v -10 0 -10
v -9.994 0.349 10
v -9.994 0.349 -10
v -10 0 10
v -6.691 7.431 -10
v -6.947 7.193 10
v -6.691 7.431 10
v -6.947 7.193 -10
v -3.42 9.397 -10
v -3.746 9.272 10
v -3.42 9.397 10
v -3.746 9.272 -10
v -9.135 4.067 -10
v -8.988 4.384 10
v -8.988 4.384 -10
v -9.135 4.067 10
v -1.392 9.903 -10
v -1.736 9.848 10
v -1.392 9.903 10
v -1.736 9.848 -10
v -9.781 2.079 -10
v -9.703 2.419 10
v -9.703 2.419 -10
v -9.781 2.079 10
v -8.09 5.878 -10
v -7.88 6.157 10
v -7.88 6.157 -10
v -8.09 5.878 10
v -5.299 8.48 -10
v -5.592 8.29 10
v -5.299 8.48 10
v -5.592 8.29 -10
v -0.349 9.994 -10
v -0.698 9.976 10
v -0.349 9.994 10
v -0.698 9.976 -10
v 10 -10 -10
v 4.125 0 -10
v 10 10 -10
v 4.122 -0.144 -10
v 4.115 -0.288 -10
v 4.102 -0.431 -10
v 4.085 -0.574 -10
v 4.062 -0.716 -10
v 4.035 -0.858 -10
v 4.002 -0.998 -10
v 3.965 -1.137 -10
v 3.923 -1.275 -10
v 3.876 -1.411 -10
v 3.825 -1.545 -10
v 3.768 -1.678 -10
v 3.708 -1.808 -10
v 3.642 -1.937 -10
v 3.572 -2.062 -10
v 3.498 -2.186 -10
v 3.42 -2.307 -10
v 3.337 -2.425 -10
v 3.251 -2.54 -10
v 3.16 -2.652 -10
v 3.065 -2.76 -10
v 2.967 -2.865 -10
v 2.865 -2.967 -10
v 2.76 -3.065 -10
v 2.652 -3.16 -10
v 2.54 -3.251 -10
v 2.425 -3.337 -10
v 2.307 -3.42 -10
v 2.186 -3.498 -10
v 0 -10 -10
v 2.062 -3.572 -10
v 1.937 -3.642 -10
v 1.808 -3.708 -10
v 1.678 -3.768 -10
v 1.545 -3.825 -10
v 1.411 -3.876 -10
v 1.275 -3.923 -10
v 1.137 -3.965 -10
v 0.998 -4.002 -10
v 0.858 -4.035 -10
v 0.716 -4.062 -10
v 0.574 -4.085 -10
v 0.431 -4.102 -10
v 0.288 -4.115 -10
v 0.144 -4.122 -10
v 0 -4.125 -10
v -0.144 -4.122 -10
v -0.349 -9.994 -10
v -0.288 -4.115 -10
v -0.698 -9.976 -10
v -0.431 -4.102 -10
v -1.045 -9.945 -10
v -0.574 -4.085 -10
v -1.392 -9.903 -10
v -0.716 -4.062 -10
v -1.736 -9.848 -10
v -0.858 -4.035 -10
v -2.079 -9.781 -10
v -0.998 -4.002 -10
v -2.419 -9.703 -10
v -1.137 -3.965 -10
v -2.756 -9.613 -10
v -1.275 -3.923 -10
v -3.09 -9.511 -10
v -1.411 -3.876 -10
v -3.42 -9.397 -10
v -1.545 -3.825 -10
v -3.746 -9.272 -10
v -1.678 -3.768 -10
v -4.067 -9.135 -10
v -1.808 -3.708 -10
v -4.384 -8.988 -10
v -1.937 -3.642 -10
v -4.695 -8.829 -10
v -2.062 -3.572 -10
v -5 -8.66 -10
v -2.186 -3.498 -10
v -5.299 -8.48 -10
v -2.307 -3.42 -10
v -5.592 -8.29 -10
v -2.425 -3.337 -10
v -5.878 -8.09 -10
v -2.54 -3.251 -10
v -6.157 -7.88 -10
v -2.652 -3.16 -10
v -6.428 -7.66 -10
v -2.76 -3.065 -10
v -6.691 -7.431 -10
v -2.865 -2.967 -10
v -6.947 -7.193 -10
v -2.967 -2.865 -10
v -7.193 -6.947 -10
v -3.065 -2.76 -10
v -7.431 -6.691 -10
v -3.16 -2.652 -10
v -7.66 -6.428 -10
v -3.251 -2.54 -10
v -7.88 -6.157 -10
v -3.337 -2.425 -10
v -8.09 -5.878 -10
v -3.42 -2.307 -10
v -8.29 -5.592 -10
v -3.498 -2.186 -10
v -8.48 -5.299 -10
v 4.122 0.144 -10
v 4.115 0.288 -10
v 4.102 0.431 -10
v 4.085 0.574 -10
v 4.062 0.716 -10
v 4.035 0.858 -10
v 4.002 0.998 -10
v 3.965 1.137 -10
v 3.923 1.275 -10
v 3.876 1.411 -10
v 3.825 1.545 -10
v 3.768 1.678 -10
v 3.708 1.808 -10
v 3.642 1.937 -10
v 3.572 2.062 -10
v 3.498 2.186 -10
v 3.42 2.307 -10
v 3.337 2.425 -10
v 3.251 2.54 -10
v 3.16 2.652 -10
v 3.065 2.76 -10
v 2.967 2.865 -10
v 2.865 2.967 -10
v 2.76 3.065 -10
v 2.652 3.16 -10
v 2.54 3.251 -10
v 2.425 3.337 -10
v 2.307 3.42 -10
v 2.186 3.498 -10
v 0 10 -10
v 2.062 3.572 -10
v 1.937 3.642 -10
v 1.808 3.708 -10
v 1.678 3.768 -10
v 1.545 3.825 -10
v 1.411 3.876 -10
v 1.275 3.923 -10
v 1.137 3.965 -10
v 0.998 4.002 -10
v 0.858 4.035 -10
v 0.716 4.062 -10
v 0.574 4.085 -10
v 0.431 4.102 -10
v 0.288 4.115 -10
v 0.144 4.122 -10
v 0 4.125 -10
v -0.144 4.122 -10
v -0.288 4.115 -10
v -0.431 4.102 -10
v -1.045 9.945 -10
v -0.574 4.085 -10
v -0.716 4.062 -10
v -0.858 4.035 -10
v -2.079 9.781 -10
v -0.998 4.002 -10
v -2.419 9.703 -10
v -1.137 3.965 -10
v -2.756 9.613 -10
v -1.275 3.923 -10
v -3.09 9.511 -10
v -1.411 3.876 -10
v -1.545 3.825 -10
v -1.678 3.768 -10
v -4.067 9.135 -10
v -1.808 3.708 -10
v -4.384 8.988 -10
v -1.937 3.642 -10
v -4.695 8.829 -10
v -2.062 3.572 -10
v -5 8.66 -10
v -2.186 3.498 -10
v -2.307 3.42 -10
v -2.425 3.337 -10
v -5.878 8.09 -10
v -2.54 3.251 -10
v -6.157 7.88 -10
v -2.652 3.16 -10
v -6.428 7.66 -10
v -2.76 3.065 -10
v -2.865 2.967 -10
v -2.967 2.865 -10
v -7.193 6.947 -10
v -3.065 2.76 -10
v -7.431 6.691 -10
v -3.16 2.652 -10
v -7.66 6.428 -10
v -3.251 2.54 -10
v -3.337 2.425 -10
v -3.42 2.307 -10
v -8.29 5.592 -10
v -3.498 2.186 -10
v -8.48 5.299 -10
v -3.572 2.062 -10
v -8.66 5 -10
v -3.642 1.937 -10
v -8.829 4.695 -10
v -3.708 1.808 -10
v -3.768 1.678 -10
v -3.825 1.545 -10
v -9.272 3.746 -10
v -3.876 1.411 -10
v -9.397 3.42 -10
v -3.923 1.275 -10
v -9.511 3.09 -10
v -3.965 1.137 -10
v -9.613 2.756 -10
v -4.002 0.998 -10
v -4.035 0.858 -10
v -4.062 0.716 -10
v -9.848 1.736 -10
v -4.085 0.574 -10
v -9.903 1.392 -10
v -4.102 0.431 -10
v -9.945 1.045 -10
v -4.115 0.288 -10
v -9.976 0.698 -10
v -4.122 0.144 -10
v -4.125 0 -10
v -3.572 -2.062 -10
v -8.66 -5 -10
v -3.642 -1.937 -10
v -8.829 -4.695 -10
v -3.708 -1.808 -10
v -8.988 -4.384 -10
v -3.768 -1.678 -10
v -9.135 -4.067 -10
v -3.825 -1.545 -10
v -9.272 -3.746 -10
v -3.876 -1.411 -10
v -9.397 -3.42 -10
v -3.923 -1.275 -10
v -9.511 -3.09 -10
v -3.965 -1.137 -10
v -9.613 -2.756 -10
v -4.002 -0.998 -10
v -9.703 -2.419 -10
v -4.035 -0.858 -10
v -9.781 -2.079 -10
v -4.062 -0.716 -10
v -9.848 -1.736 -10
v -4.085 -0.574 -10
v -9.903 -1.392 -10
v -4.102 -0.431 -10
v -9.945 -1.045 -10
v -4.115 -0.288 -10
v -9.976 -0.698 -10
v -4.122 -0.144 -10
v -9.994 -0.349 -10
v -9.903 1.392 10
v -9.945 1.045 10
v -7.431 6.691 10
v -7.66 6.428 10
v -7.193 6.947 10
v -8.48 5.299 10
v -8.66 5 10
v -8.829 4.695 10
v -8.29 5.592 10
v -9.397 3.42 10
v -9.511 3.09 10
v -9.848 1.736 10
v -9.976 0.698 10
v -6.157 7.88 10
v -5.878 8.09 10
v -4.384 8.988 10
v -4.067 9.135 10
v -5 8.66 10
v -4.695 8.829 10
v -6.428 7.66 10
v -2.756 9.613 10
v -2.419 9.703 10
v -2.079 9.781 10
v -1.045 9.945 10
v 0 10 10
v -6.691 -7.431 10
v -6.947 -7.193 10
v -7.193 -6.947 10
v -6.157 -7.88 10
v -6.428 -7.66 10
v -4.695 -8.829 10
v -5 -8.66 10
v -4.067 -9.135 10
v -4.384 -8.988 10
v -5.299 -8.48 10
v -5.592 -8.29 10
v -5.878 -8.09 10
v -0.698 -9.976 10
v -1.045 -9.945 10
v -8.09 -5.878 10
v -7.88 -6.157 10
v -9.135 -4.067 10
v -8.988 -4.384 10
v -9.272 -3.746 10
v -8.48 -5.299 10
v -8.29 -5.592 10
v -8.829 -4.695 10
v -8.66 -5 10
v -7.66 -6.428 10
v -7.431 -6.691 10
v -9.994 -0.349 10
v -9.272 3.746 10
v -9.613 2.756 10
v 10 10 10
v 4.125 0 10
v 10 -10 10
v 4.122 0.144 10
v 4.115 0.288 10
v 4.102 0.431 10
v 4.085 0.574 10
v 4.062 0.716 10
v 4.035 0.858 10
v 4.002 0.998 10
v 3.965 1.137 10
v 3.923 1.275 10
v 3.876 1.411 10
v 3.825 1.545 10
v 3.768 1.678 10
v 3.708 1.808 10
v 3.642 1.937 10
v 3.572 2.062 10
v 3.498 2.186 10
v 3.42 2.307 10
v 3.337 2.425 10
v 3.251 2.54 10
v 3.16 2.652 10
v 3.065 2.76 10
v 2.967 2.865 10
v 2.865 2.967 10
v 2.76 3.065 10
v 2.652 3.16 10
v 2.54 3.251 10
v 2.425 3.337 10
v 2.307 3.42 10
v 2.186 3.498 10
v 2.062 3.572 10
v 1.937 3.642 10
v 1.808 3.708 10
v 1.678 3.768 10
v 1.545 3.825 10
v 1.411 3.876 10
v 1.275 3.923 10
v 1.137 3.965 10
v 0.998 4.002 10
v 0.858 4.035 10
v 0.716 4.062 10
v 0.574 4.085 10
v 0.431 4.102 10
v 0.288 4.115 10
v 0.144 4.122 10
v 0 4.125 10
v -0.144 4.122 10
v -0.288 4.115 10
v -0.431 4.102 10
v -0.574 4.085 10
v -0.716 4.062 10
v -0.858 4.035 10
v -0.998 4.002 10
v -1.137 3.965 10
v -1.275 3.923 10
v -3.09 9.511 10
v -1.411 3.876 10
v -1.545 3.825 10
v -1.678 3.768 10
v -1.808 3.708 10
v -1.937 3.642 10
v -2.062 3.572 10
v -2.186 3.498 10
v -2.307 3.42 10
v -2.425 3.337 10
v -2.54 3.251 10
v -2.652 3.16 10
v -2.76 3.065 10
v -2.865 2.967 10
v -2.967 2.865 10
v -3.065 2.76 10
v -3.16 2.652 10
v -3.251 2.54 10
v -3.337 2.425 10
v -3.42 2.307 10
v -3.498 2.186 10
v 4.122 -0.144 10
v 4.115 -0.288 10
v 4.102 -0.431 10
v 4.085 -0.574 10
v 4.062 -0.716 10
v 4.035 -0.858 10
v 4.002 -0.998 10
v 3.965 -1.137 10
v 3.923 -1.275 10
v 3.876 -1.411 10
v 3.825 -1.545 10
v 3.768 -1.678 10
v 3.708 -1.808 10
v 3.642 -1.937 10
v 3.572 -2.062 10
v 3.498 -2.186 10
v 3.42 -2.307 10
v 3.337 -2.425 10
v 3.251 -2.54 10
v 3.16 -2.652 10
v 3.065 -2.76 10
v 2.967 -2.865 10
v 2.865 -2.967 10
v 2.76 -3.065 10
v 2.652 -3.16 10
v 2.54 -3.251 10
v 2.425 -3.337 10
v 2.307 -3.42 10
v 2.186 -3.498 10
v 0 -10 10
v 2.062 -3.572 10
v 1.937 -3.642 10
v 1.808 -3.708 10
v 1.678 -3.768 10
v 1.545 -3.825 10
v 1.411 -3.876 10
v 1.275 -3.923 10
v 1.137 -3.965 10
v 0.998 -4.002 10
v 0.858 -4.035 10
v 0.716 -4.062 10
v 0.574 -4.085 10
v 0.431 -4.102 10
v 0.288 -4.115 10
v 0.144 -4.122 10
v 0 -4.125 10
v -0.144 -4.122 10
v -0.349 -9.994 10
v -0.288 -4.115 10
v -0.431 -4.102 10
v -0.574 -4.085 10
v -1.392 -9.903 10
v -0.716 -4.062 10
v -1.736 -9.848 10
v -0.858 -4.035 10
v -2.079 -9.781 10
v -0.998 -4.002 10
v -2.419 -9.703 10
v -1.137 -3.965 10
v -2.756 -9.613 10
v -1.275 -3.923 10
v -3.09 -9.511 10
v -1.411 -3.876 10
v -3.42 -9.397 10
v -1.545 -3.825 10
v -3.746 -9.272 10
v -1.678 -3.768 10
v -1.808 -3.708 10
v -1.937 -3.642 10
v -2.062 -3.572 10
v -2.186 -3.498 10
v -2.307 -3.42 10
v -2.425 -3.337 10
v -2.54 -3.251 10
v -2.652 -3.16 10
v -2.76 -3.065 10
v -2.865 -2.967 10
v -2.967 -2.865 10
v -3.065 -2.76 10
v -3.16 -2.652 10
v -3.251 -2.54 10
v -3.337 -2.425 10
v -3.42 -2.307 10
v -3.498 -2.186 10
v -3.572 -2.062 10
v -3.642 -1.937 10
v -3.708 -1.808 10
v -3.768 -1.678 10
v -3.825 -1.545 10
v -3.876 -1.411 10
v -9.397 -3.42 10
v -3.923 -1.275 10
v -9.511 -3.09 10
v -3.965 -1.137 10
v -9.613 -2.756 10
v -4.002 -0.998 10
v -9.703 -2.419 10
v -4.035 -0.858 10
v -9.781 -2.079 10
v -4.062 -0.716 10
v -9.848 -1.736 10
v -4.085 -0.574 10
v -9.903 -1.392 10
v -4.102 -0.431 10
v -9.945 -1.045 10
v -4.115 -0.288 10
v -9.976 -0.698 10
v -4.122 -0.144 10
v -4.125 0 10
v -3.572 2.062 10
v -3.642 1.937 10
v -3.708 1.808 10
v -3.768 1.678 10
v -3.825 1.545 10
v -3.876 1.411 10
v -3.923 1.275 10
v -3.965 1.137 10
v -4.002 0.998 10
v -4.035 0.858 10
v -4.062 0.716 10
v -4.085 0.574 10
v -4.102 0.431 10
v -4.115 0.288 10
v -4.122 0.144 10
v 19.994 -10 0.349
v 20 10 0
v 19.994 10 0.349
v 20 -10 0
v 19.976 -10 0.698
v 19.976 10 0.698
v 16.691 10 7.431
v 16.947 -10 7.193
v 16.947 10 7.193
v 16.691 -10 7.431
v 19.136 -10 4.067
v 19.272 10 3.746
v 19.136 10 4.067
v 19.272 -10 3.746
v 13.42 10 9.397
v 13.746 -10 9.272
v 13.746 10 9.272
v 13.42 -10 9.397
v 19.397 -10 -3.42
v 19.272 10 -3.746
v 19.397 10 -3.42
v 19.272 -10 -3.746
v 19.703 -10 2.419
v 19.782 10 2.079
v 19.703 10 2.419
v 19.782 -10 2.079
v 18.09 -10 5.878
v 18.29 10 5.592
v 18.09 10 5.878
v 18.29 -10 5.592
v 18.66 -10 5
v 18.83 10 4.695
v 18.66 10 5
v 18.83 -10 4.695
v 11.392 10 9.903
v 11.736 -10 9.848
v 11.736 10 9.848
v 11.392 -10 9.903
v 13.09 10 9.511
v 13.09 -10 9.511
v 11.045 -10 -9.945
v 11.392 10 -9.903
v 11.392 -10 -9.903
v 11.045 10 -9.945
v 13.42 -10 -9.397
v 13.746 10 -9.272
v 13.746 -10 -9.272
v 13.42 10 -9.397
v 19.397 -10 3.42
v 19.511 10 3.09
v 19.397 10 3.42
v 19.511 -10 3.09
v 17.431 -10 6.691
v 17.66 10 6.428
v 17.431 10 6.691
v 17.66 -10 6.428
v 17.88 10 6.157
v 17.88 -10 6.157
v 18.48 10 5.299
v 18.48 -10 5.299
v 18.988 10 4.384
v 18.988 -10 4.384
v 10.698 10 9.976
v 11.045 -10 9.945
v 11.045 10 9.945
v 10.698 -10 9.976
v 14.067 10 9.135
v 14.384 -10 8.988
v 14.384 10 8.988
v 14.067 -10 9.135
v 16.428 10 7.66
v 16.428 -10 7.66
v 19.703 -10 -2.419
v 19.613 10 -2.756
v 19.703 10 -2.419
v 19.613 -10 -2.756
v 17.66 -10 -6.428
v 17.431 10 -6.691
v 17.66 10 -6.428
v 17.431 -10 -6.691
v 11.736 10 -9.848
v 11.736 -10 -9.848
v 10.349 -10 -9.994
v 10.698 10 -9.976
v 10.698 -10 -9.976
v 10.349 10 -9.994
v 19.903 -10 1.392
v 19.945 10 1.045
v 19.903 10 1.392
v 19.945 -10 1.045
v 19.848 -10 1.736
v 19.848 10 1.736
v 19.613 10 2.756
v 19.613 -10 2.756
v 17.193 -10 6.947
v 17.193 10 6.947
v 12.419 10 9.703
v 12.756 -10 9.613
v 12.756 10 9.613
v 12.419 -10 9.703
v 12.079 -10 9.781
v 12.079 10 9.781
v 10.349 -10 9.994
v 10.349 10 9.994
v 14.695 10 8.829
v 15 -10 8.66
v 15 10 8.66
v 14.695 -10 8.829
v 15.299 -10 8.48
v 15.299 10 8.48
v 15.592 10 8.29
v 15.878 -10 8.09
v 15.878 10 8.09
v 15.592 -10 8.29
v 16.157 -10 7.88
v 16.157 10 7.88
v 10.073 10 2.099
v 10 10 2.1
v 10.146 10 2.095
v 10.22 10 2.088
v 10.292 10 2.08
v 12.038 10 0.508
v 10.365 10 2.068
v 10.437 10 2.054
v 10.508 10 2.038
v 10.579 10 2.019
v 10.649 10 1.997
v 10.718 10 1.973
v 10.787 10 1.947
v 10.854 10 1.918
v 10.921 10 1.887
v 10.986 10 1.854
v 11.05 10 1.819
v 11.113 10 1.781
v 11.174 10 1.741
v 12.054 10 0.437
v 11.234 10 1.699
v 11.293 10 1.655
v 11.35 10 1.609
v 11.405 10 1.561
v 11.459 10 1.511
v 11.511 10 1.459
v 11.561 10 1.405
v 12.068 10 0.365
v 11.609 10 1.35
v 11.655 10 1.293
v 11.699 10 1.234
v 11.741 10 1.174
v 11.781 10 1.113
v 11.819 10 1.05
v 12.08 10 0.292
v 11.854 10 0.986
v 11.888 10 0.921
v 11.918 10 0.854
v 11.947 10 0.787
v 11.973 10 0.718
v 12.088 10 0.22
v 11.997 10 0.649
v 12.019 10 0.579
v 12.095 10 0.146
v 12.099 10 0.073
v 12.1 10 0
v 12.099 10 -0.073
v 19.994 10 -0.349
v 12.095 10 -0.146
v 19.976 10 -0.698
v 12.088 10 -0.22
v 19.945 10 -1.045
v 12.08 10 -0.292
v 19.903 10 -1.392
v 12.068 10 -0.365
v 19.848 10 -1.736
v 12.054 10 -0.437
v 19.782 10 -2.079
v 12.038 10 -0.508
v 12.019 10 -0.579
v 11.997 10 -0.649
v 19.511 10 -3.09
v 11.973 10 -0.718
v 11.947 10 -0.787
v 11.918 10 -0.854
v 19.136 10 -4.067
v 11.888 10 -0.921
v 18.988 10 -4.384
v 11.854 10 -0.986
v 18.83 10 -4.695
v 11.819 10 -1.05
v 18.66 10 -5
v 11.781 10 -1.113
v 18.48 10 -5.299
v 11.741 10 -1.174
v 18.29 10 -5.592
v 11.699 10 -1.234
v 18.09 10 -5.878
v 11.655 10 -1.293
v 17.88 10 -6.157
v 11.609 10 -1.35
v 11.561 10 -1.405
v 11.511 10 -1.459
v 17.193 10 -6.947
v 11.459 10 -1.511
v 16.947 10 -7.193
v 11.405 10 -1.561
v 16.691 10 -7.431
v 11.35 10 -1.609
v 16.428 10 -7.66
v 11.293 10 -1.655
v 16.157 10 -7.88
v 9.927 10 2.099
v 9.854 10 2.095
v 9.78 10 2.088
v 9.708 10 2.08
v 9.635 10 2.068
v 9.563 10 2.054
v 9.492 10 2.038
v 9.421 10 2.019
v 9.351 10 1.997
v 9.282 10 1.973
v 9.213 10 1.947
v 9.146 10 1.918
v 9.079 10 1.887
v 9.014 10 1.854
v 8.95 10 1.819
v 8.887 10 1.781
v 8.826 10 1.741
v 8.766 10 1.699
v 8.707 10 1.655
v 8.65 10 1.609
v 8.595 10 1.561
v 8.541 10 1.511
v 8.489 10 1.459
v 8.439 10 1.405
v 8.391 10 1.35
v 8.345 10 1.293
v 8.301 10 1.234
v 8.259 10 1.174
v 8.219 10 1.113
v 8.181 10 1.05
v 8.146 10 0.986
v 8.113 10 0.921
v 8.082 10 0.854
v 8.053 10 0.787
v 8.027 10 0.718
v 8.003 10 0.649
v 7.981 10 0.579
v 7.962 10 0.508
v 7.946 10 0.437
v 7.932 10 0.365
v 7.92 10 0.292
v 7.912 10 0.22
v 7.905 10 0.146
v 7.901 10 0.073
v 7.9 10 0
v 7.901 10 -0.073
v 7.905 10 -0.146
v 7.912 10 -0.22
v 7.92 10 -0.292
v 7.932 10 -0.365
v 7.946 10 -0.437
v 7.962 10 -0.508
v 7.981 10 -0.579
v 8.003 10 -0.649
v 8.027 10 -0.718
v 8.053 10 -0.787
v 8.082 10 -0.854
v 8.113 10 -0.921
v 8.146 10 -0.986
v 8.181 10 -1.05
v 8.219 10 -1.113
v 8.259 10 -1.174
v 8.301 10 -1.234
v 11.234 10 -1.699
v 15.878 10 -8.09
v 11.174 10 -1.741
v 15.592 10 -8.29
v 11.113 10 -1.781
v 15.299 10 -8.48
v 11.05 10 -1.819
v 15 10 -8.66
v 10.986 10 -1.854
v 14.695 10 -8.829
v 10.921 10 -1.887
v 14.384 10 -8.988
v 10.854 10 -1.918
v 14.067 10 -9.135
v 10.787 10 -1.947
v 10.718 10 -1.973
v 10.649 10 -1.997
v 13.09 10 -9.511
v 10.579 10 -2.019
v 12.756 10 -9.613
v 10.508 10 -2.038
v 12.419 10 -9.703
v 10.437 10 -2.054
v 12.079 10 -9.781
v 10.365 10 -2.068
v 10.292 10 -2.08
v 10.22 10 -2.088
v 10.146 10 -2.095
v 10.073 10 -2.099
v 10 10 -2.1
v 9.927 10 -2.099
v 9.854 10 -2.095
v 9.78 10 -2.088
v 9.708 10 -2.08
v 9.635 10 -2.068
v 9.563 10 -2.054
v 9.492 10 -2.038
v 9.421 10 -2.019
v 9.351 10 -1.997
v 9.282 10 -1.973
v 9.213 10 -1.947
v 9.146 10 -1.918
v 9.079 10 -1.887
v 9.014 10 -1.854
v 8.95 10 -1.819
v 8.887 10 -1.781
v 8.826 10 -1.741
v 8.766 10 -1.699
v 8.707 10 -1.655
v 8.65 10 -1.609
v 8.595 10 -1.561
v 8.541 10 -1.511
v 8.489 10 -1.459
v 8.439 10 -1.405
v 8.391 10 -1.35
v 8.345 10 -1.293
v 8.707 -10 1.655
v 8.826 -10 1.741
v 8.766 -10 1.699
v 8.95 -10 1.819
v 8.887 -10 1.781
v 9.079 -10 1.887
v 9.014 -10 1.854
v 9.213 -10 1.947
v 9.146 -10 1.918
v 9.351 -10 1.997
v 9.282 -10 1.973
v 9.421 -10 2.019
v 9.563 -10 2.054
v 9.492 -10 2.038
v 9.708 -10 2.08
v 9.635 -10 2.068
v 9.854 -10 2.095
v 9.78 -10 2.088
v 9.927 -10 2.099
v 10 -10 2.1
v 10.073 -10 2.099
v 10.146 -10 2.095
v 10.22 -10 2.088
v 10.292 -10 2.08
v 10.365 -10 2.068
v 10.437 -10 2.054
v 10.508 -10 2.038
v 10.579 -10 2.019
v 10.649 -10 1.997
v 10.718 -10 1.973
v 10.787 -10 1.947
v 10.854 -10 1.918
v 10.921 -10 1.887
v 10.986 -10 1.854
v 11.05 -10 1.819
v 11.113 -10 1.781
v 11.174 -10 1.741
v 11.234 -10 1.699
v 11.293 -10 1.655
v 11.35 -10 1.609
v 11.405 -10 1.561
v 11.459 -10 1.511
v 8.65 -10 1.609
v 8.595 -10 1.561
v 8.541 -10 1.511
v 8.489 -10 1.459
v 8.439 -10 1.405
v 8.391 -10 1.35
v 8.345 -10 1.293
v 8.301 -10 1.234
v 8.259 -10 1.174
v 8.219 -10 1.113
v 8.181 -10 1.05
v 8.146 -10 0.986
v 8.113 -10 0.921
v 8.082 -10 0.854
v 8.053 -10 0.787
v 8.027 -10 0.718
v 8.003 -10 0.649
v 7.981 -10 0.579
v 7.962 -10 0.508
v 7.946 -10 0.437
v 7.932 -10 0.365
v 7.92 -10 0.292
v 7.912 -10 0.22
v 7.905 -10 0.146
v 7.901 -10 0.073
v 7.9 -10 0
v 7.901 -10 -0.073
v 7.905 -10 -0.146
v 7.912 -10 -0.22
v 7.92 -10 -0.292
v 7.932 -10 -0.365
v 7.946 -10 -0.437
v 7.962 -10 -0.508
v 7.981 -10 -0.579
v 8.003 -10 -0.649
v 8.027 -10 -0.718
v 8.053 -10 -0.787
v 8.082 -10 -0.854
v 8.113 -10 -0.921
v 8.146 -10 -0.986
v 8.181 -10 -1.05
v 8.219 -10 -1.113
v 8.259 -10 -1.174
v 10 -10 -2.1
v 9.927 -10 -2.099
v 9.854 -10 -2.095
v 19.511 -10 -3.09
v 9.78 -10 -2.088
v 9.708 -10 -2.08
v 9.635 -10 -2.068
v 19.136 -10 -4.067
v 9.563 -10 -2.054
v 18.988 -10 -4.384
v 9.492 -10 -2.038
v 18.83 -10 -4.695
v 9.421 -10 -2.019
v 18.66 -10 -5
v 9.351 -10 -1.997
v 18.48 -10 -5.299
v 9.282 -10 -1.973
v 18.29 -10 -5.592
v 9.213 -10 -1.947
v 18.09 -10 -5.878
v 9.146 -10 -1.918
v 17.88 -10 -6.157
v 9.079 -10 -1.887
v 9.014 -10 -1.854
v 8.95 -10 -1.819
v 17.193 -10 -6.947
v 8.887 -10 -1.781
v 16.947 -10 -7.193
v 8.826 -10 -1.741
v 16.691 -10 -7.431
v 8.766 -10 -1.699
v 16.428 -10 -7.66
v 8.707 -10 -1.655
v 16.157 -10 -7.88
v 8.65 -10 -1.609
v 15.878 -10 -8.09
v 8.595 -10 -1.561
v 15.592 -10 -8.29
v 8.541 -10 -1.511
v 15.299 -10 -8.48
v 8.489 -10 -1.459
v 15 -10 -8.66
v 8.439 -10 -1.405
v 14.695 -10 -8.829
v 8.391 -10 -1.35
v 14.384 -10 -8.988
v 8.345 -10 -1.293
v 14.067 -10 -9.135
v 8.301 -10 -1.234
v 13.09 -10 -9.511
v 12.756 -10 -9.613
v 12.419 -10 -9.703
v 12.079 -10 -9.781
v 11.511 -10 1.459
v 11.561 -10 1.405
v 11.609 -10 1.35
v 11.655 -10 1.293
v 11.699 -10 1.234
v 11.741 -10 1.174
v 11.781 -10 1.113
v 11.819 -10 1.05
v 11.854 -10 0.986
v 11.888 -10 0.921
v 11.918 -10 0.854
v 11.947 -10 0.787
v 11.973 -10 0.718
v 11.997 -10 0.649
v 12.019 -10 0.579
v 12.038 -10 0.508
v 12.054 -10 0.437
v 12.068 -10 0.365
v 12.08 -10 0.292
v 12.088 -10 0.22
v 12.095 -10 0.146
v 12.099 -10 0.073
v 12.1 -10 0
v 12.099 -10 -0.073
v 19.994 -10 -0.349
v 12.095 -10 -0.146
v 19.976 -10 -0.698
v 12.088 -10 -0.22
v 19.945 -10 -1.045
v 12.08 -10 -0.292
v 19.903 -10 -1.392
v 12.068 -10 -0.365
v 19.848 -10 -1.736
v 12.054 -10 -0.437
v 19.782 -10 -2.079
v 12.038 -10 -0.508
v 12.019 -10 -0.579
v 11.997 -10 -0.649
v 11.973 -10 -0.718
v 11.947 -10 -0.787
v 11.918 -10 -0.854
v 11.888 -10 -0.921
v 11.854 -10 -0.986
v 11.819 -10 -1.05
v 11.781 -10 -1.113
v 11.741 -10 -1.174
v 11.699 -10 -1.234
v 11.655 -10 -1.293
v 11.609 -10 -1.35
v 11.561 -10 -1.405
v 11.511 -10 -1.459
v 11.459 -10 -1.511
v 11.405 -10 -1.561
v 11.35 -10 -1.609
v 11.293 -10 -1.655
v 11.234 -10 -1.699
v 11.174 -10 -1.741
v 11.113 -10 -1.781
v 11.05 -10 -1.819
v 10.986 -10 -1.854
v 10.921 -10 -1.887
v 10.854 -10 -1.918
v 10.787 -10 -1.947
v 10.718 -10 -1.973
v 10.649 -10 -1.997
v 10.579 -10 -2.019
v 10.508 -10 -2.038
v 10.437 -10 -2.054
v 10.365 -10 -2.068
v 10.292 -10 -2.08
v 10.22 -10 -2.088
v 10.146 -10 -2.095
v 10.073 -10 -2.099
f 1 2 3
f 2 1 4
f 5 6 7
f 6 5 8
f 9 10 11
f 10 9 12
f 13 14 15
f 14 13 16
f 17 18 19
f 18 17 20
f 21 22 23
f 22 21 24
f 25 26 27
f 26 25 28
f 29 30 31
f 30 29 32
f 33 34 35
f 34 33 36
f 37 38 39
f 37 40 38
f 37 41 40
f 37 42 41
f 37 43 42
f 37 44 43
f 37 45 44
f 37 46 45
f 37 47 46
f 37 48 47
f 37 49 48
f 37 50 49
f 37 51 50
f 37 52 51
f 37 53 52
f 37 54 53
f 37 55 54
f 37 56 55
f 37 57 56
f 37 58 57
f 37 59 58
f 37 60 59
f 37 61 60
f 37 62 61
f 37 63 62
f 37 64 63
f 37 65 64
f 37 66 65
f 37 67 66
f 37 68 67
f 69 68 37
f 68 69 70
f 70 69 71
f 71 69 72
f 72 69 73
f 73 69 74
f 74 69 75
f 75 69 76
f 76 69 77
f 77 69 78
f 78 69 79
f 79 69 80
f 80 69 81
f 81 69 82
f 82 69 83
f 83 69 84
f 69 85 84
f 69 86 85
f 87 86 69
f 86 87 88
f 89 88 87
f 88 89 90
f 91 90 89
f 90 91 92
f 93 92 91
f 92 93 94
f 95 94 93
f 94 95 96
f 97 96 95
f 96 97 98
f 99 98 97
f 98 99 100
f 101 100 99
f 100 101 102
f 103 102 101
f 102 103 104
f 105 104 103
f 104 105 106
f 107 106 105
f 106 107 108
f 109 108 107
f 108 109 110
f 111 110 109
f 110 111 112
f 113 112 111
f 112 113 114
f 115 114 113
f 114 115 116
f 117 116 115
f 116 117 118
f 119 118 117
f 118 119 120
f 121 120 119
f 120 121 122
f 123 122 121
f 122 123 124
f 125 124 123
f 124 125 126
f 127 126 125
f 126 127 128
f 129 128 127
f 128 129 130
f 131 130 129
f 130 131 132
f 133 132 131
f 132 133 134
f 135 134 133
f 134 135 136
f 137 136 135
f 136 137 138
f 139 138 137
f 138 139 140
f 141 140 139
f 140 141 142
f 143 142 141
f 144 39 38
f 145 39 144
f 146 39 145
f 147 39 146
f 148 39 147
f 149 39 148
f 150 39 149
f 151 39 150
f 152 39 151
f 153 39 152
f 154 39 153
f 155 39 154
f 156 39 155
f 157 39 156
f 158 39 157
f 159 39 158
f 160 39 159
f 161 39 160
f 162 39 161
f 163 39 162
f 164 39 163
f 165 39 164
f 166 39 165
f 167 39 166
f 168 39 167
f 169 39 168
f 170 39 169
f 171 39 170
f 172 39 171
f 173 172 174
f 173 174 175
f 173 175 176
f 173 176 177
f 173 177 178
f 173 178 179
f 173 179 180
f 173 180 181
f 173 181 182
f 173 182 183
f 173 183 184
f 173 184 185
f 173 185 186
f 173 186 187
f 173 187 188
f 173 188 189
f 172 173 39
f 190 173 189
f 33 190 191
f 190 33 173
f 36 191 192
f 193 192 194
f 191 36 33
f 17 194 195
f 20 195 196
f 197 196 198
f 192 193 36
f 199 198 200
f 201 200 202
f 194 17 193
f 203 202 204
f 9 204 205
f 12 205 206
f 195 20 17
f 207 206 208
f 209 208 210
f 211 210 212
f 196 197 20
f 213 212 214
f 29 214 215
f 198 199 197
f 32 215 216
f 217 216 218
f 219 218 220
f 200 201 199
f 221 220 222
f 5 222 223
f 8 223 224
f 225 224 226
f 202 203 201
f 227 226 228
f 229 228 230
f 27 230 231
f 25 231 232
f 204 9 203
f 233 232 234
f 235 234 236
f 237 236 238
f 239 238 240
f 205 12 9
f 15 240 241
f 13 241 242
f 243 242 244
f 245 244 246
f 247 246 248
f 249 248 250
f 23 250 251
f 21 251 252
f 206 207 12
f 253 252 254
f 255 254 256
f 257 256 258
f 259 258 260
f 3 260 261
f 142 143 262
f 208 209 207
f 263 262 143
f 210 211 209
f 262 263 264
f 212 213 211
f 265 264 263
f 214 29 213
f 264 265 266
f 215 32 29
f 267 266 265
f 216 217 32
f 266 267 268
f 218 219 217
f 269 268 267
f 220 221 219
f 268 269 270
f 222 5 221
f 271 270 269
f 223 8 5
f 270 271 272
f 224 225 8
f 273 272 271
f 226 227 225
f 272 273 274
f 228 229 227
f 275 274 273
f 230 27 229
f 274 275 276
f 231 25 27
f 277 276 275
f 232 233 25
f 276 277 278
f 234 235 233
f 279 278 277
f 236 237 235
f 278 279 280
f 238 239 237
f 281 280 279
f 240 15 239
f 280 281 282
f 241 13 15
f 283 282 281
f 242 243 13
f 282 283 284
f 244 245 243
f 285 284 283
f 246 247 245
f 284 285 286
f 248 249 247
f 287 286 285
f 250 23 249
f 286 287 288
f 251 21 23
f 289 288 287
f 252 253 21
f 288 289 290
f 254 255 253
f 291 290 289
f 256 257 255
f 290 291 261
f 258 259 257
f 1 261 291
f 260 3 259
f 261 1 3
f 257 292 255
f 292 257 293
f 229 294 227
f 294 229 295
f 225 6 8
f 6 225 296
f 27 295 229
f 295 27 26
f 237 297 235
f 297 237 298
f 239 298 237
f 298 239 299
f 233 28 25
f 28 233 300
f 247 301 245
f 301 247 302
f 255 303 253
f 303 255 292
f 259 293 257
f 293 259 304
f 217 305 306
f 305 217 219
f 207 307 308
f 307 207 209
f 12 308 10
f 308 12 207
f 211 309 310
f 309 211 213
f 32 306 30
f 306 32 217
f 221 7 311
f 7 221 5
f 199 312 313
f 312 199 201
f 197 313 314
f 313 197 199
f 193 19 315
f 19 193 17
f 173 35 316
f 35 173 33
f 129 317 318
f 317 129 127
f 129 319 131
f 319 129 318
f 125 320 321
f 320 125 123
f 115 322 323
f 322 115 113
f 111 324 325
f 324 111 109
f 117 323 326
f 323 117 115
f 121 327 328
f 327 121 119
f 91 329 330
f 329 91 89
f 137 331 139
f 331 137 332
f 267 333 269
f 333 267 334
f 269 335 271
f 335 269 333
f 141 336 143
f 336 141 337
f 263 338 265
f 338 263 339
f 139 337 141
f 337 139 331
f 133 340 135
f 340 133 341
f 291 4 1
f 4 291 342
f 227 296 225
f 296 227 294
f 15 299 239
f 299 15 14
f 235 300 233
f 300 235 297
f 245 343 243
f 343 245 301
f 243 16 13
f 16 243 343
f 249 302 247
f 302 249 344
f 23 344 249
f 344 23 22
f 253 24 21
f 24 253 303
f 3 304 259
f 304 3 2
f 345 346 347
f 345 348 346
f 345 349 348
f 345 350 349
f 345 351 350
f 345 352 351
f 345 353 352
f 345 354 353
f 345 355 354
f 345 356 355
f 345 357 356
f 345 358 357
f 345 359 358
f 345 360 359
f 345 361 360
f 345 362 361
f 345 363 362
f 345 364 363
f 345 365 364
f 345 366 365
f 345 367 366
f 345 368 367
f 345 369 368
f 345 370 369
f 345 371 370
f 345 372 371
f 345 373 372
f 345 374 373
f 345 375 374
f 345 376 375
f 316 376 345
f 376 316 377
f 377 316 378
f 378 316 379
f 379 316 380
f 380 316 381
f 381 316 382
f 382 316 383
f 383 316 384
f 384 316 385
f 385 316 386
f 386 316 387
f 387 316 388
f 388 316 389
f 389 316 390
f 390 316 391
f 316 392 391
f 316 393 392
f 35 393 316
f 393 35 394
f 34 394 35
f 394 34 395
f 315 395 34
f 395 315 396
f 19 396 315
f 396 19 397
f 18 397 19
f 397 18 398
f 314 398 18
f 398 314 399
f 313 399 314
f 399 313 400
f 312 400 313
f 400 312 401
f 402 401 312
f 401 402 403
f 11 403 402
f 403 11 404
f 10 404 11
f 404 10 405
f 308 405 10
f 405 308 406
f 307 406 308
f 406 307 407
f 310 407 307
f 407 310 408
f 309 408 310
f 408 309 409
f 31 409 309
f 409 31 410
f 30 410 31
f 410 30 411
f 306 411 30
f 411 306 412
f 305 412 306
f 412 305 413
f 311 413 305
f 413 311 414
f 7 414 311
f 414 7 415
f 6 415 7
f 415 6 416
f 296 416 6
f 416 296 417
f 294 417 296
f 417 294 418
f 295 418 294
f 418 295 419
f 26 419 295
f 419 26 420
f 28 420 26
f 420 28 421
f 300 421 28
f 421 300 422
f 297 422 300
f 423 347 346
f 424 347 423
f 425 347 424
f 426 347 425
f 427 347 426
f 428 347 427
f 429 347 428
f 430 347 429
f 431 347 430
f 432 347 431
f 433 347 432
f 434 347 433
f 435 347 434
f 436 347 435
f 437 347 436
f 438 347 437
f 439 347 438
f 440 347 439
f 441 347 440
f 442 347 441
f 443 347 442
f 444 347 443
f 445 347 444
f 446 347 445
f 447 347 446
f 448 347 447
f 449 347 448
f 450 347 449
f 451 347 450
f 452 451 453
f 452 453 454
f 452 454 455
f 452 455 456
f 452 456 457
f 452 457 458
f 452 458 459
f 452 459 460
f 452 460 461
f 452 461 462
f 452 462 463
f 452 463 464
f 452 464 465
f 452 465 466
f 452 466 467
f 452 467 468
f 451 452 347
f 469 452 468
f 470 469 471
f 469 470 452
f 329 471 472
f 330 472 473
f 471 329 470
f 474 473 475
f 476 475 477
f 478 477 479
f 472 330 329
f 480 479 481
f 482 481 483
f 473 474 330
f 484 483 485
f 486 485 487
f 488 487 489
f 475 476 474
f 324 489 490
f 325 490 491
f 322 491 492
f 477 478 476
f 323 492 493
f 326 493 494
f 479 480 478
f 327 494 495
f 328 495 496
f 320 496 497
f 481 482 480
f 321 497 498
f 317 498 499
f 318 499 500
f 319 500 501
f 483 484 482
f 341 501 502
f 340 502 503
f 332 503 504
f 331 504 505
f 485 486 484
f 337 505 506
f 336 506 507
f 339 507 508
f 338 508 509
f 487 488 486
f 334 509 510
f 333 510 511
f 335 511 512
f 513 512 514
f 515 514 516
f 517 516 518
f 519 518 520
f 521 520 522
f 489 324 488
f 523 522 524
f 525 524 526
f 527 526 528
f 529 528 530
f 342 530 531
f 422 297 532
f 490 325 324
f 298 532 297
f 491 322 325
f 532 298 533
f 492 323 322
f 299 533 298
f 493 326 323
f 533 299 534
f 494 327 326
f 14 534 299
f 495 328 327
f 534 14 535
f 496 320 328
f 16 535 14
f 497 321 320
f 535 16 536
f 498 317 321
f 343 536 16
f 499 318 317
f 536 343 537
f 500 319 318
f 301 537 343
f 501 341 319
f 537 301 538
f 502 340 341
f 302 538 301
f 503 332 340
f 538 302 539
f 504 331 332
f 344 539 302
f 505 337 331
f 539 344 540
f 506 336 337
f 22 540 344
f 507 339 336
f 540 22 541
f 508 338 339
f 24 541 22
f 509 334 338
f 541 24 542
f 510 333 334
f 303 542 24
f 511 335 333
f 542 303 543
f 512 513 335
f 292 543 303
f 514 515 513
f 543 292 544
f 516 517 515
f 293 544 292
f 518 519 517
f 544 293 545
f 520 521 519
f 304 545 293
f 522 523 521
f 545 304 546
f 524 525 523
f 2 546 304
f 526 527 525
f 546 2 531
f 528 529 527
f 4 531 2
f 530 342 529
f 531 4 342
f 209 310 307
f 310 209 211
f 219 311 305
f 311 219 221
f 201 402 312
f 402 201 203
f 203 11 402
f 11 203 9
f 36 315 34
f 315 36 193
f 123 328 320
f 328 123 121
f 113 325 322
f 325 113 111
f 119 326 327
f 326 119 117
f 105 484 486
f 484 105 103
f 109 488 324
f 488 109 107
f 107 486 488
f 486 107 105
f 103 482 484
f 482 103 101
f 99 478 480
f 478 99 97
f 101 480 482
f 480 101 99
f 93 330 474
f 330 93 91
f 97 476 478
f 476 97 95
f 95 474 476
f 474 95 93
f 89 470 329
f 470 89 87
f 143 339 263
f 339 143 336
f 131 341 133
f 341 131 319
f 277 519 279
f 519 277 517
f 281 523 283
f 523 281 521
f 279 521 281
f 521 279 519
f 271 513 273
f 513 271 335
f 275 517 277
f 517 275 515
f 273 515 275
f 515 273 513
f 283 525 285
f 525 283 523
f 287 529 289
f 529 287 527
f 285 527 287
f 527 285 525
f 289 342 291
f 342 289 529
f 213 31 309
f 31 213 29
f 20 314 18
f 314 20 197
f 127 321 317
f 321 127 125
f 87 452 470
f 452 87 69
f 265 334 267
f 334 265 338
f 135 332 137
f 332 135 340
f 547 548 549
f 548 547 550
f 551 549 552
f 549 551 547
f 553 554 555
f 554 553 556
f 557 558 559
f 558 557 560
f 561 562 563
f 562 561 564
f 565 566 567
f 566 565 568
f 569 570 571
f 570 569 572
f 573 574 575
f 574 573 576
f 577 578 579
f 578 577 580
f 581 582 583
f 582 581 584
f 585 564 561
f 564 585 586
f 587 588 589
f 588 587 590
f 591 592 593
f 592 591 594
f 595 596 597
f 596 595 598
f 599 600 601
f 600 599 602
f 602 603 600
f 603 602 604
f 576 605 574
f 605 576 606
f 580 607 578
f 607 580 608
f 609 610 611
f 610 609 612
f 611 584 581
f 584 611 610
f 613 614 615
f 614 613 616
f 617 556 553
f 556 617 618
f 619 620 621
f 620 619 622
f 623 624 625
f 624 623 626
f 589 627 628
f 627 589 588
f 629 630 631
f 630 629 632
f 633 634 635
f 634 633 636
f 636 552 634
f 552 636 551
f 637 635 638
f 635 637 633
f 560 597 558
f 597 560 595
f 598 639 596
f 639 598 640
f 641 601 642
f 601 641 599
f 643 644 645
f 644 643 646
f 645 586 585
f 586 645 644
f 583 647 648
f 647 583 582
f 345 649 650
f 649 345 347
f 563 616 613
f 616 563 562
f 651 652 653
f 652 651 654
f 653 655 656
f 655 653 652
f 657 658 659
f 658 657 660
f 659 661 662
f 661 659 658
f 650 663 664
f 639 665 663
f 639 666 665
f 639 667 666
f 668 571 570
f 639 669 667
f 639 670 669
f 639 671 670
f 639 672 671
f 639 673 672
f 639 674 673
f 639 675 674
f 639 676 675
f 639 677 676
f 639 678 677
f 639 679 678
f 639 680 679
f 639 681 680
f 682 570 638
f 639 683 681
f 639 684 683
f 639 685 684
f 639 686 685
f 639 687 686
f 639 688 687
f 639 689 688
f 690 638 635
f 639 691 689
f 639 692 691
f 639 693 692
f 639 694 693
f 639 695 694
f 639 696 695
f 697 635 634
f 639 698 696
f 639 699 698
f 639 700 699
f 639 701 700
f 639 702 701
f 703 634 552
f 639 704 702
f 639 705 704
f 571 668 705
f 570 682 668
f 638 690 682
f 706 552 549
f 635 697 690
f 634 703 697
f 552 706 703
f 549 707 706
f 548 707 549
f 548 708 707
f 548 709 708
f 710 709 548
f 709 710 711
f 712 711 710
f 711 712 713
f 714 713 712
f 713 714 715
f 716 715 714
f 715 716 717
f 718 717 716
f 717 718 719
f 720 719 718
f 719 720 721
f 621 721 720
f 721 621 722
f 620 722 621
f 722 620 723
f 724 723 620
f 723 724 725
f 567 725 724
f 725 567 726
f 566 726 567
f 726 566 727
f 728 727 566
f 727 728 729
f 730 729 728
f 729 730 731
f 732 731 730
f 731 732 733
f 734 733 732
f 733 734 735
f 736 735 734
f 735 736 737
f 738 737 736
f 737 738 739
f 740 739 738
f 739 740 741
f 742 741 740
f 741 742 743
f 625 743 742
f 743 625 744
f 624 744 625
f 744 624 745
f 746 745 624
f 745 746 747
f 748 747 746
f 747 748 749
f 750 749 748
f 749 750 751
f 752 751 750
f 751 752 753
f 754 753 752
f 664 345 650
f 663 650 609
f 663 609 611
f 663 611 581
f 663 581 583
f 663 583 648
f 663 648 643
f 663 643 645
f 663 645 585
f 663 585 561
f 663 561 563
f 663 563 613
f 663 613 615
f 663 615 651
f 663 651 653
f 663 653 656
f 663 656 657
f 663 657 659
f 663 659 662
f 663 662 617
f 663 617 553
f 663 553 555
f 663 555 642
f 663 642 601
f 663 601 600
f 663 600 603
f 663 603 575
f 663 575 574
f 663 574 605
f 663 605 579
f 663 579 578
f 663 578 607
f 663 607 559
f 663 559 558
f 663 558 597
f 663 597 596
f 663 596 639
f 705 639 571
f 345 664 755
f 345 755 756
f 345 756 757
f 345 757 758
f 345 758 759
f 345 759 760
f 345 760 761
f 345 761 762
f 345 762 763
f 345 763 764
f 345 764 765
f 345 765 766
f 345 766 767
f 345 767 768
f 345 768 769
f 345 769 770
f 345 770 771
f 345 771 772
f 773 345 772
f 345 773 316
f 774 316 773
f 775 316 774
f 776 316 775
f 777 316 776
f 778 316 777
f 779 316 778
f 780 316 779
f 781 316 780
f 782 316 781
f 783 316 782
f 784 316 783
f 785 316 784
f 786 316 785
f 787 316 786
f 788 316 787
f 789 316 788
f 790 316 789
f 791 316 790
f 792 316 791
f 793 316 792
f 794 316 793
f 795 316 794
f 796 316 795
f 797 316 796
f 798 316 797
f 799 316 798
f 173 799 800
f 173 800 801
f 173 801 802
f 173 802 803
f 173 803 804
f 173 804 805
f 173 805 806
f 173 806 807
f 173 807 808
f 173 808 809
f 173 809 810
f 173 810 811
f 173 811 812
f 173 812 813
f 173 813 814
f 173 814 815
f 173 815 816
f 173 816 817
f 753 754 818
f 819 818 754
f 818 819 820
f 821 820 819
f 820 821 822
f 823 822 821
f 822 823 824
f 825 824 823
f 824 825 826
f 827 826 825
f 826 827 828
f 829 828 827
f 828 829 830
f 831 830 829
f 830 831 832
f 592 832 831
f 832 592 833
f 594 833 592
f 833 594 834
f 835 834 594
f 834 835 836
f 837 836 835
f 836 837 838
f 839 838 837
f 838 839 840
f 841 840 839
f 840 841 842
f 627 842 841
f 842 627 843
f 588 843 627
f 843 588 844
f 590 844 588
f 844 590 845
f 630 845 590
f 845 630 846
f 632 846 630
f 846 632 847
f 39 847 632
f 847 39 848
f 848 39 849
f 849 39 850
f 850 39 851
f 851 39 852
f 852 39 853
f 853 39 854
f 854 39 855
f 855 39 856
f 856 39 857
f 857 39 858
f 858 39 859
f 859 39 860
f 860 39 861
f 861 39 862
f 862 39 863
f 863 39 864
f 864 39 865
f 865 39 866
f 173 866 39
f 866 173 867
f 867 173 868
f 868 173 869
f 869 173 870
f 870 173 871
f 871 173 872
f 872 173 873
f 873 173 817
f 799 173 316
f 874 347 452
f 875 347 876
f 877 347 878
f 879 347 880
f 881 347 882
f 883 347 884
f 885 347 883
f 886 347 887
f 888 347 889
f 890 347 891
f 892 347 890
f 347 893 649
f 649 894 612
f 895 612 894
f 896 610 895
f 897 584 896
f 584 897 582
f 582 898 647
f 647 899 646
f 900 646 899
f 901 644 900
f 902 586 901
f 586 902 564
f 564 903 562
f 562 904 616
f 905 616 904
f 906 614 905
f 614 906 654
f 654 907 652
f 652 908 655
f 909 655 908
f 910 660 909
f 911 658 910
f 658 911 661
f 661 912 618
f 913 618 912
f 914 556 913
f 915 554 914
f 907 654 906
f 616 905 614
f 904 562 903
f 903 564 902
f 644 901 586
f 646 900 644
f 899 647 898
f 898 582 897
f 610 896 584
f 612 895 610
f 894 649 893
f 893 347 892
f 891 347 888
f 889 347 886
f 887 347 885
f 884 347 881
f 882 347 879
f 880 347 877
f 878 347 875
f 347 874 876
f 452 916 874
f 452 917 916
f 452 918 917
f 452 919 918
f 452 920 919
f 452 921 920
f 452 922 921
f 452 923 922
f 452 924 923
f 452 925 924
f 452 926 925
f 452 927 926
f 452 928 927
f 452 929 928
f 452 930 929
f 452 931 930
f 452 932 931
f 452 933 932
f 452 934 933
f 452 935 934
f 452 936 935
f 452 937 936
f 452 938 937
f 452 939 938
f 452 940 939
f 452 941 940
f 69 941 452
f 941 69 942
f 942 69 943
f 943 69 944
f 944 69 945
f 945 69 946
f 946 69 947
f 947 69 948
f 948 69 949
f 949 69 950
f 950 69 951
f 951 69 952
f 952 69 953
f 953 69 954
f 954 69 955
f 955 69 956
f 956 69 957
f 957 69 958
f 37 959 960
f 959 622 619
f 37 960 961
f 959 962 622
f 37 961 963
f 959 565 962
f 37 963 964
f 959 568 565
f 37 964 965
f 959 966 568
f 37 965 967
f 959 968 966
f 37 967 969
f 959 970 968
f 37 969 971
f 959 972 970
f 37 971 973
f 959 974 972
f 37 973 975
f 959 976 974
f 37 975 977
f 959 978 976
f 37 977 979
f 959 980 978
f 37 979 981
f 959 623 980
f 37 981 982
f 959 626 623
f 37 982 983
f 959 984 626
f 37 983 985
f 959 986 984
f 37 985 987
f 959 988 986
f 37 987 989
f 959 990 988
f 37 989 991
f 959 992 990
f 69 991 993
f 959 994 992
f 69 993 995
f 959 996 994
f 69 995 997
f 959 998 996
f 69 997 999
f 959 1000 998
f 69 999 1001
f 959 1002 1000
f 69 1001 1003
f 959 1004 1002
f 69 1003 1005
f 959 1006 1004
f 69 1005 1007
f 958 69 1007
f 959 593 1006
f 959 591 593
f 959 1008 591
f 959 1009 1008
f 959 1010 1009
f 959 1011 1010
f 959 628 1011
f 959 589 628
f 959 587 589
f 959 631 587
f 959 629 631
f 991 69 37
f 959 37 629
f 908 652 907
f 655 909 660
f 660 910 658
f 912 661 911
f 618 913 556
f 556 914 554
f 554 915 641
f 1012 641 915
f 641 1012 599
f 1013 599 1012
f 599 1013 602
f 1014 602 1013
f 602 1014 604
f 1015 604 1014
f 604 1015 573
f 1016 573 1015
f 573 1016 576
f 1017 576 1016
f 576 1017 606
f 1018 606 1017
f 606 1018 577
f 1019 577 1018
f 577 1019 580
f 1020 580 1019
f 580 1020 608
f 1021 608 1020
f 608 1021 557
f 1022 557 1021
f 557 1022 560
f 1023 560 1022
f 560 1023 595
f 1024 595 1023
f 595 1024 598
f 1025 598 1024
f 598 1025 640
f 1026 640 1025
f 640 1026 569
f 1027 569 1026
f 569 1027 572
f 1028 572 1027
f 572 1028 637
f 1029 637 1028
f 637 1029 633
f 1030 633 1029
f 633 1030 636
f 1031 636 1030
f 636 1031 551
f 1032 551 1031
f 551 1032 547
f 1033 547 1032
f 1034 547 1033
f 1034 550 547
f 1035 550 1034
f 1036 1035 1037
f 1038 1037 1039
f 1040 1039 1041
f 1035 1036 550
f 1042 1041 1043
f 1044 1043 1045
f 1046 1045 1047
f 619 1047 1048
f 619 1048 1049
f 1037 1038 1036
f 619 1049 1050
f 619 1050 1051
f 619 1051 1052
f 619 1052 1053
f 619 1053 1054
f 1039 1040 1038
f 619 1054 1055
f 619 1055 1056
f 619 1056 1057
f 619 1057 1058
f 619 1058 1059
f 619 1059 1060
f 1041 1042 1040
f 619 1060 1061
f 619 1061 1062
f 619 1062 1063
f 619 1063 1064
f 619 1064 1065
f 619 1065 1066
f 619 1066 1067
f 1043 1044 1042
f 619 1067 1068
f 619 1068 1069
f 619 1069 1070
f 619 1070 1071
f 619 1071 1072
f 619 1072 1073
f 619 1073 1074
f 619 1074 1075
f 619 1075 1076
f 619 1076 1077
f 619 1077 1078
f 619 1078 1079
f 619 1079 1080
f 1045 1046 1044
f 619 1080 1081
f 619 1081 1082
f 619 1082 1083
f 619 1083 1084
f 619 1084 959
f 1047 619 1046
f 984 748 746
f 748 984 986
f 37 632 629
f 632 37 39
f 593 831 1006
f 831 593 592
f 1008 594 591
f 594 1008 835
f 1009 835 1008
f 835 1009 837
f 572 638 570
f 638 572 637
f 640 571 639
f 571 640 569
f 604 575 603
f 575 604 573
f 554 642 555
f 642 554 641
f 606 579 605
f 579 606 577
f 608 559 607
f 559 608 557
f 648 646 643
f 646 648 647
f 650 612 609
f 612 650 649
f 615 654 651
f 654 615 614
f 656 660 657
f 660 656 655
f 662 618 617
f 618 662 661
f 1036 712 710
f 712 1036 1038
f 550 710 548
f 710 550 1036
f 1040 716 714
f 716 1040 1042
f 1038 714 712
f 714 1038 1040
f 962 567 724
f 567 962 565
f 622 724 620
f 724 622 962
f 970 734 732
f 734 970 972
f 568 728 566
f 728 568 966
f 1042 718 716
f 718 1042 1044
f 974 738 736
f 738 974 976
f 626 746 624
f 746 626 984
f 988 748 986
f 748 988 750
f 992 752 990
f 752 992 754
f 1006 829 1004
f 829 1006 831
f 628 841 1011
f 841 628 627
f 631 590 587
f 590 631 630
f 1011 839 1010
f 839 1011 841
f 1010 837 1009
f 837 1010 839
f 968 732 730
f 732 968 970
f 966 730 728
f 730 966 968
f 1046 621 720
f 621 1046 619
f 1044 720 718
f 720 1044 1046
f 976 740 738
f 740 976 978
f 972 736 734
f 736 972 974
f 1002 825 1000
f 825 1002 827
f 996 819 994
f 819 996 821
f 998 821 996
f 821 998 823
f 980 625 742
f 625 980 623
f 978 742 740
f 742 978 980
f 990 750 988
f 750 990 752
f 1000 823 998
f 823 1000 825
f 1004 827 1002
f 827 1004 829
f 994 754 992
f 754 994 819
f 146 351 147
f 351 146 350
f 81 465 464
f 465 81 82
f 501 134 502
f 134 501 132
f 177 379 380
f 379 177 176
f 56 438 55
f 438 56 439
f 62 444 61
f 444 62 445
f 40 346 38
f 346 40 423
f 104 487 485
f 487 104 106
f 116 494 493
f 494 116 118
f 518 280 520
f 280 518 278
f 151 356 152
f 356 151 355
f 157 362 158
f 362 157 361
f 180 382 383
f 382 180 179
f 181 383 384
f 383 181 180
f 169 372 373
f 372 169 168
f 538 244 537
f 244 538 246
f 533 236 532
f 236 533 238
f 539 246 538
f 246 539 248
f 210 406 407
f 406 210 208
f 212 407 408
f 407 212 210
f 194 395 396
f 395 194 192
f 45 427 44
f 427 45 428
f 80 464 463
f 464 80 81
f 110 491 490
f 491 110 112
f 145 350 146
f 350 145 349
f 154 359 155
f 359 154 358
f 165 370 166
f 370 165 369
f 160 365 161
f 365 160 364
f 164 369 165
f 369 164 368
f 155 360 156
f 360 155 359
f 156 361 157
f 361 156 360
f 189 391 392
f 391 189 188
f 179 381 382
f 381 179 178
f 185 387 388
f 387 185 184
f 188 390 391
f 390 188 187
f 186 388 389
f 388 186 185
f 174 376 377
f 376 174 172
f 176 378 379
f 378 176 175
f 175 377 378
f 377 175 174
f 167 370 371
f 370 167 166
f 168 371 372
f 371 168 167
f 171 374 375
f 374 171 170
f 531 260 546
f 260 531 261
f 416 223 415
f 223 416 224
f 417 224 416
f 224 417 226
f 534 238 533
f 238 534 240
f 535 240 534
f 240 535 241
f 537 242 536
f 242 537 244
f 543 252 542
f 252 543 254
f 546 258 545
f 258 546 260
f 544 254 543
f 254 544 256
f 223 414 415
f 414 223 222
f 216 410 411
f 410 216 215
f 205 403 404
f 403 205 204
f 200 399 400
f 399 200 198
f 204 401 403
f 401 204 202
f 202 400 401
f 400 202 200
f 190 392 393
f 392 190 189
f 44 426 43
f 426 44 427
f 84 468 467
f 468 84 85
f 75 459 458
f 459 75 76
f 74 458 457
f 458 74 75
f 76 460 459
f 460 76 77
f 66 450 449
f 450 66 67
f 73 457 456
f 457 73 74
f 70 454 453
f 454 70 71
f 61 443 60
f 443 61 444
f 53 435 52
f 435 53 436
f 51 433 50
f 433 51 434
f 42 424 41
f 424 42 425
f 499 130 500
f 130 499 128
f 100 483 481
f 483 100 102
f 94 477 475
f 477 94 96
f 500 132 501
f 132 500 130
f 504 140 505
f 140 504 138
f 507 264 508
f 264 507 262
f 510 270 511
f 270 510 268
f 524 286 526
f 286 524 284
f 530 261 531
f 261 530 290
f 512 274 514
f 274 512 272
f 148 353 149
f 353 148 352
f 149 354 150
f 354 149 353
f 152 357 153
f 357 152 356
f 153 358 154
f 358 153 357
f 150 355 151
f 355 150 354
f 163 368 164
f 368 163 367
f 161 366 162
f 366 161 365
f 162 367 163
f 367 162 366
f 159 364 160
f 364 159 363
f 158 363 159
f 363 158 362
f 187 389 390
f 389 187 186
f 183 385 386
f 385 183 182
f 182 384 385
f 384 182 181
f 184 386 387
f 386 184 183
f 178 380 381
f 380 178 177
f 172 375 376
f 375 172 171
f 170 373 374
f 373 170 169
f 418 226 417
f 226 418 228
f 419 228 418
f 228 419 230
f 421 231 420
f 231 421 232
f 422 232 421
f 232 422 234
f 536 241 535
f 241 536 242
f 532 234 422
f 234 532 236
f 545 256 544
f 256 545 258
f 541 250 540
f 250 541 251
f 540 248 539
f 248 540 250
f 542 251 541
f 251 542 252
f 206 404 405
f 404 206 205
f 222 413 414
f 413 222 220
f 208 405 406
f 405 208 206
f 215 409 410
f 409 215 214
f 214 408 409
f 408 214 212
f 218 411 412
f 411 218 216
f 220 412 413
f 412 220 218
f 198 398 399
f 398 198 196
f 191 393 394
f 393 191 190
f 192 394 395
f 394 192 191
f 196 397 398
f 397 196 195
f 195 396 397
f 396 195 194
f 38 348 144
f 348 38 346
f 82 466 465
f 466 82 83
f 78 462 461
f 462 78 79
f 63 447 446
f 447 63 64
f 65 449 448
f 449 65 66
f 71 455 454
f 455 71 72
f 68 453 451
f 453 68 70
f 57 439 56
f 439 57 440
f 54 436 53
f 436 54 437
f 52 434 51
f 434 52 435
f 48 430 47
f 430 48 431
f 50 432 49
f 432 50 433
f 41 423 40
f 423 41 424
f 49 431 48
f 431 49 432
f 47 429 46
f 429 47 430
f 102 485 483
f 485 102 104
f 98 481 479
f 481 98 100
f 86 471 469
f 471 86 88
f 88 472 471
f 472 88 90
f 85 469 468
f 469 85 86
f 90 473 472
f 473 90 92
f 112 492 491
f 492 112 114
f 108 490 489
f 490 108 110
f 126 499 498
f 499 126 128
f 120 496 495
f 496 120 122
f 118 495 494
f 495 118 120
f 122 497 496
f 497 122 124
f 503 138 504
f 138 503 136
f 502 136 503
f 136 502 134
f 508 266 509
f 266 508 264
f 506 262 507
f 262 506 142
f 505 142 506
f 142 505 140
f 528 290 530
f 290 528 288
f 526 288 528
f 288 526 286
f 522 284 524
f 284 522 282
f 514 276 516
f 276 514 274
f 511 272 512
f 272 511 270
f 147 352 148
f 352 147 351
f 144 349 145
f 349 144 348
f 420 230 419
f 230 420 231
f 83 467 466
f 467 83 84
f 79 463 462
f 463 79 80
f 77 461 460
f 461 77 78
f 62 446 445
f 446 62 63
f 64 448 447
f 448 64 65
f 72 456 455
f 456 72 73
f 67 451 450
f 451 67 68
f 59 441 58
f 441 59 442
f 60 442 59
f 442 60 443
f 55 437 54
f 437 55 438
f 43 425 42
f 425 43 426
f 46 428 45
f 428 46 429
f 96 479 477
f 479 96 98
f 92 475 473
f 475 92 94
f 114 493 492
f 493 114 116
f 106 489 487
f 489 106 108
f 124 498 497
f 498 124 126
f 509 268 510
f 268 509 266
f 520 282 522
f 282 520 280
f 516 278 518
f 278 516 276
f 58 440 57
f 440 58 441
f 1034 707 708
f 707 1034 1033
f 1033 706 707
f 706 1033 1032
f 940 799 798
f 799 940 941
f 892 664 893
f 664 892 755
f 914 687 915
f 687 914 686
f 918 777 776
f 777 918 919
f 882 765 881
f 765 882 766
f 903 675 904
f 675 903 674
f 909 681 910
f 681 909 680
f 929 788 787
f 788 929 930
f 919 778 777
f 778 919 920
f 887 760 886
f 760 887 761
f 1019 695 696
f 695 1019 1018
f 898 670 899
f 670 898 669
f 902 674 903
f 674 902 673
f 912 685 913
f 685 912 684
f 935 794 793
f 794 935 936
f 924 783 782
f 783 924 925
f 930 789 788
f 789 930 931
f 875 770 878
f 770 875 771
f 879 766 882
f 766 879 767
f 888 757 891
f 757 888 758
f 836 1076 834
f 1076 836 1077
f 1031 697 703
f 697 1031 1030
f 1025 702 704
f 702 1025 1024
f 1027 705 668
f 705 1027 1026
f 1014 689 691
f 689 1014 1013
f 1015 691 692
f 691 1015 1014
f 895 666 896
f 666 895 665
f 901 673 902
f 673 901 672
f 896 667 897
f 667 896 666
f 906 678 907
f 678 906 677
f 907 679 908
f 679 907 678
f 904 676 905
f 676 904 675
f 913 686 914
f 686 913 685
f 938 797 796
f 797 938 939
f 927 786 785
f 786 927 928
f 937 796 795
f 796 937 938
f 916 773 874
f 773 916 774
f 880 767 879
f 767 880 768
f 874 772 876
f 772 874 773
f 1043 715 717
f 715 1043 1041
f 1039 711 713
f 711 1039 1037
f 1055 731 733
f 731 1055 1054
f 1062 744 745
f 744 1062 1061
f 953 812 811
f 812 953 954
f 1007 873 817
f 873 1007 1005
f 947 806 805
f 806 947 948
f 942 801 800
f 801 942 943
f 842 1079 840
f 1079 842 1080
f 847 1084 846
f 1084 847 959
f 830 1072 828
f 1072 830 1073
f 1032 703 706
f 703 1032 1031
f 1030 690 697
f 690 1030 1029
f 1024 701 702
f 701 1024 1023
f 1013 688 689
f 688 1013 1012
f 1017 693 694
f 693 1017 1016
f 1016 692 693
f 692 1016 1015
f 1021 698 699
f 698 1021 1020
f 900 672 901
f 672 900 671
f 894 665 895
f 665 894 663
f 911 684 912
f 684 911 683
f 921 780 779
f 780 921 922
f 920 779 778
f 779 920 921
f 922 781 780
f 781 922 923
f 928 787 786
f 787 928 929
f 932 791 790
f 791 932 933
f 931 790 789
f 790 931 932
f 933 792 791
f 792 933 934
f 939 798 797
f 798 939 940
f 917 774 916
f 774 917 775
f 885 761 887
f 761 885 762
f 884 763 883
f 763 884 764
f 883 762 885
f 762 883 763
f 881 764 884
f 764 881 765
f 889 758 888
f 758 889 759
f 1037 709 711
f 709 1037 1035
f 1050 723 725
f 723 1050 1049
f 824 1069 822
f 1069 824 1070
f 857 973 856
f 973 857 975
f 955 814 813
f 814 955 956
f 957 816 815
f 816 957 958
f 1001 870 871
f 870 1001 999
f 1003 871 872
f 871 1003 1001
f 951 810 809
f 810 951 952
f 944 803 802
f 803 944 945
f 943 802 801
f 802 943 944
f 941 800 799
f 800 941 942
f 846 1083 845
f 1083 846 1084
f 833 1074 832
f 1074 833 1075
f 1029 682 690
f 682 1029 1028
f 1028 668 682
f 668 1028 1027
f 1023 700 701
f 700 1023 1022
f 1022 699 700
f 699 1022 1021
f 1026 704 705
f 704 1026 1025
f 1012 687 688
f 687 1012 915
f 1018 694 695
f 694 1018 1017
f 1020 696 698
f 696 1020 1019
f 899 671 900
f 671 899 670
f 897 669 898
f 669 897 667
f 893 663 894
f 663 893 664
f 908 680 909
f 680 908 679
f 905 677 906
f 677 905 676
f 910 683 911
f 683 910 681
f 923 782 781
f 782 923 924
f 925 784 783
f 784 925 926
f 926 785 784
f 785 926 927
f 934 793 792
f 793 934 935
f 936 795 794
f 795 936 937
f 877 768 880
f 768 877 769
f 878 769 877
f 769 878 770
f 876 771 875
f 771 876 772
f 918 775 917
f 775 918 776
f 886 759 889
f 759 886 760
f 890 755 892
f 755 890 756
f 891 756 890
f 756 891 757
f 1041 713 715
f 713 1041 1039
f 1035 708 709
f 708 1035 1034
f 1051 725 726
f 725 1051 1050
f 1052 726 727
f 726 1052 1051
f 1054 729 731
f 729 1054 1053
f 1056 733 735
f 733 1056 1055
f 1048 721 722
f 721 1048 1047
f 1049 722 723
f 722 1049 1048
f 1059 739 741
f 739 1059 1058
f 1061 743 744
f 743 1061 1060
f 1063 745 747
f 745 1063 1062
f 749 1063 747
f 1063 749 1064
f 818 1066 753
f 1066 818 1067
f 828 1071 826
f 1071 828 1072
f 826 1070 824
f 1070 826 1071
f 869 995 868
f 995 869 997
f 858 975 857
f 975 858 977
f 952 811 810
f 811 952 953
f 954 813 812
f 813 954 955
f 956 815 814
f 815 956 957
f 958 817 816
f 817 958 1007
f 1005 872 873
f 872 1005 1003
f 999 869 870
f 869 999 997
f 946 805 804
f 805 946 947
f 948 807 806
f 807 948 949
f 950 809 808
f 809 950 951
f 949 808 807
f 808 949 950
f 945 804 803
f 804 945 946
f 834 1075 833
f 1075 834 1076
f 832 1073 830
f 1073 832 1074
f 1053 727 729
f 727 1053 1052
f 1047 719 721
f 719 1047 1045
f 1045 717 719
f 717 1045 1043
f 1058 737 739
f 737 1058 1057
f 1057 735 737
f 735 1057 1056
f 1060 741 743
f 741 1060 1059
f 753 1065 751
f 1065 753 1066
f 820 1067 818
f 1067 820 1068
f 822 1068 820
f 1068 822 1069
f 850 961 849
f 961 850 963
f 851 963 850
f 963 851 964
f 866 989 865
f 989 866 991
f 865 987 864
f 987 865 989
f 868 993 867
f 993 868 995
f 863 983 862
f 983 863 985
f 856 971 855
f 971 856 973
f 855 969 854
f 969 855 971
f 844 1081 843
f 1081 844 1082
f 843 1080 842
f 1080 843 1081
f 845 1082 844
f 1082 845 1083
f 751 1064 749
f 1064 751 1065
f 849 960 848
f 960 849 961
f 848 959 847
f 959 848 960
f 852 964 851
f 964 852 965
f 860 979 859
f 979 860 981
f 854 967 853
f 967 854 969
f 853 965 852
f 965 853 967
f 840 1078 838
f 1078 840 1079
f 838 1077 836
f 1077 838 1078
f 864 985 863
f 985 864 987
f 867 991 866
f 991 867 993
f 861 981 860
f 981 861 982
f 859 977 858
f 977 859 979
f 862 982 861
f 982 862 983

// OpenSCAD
//cube([120,120,3], center = true);
//translate([-45,-45,0])cylinder(h = 3, r=15, $fn = 180, center = true);
//rotate_extrude(convexity = 10, $fn = A) translate([20+1.5, 0, 0])circle(d = 3, $fn = B);
//module Test(){






difference(){
    
union(){    
cylinder(h = 20, d=20, $fn = 180, center = true);
    
translate([10,0,0])rotate([90,0,0])cylinder(h = 20, d=20, $fn = 180, center = true);
    
translate([5,0,0])cube([10,20,20], center = true);    

}    
cylinder(h = 21, d=8.25, $fn = 180, center = true);


translate([10,0,0])rotate([90,0,0])cylinder(h = 21, d=4.2, $fn = 180, center = true);
 
}
